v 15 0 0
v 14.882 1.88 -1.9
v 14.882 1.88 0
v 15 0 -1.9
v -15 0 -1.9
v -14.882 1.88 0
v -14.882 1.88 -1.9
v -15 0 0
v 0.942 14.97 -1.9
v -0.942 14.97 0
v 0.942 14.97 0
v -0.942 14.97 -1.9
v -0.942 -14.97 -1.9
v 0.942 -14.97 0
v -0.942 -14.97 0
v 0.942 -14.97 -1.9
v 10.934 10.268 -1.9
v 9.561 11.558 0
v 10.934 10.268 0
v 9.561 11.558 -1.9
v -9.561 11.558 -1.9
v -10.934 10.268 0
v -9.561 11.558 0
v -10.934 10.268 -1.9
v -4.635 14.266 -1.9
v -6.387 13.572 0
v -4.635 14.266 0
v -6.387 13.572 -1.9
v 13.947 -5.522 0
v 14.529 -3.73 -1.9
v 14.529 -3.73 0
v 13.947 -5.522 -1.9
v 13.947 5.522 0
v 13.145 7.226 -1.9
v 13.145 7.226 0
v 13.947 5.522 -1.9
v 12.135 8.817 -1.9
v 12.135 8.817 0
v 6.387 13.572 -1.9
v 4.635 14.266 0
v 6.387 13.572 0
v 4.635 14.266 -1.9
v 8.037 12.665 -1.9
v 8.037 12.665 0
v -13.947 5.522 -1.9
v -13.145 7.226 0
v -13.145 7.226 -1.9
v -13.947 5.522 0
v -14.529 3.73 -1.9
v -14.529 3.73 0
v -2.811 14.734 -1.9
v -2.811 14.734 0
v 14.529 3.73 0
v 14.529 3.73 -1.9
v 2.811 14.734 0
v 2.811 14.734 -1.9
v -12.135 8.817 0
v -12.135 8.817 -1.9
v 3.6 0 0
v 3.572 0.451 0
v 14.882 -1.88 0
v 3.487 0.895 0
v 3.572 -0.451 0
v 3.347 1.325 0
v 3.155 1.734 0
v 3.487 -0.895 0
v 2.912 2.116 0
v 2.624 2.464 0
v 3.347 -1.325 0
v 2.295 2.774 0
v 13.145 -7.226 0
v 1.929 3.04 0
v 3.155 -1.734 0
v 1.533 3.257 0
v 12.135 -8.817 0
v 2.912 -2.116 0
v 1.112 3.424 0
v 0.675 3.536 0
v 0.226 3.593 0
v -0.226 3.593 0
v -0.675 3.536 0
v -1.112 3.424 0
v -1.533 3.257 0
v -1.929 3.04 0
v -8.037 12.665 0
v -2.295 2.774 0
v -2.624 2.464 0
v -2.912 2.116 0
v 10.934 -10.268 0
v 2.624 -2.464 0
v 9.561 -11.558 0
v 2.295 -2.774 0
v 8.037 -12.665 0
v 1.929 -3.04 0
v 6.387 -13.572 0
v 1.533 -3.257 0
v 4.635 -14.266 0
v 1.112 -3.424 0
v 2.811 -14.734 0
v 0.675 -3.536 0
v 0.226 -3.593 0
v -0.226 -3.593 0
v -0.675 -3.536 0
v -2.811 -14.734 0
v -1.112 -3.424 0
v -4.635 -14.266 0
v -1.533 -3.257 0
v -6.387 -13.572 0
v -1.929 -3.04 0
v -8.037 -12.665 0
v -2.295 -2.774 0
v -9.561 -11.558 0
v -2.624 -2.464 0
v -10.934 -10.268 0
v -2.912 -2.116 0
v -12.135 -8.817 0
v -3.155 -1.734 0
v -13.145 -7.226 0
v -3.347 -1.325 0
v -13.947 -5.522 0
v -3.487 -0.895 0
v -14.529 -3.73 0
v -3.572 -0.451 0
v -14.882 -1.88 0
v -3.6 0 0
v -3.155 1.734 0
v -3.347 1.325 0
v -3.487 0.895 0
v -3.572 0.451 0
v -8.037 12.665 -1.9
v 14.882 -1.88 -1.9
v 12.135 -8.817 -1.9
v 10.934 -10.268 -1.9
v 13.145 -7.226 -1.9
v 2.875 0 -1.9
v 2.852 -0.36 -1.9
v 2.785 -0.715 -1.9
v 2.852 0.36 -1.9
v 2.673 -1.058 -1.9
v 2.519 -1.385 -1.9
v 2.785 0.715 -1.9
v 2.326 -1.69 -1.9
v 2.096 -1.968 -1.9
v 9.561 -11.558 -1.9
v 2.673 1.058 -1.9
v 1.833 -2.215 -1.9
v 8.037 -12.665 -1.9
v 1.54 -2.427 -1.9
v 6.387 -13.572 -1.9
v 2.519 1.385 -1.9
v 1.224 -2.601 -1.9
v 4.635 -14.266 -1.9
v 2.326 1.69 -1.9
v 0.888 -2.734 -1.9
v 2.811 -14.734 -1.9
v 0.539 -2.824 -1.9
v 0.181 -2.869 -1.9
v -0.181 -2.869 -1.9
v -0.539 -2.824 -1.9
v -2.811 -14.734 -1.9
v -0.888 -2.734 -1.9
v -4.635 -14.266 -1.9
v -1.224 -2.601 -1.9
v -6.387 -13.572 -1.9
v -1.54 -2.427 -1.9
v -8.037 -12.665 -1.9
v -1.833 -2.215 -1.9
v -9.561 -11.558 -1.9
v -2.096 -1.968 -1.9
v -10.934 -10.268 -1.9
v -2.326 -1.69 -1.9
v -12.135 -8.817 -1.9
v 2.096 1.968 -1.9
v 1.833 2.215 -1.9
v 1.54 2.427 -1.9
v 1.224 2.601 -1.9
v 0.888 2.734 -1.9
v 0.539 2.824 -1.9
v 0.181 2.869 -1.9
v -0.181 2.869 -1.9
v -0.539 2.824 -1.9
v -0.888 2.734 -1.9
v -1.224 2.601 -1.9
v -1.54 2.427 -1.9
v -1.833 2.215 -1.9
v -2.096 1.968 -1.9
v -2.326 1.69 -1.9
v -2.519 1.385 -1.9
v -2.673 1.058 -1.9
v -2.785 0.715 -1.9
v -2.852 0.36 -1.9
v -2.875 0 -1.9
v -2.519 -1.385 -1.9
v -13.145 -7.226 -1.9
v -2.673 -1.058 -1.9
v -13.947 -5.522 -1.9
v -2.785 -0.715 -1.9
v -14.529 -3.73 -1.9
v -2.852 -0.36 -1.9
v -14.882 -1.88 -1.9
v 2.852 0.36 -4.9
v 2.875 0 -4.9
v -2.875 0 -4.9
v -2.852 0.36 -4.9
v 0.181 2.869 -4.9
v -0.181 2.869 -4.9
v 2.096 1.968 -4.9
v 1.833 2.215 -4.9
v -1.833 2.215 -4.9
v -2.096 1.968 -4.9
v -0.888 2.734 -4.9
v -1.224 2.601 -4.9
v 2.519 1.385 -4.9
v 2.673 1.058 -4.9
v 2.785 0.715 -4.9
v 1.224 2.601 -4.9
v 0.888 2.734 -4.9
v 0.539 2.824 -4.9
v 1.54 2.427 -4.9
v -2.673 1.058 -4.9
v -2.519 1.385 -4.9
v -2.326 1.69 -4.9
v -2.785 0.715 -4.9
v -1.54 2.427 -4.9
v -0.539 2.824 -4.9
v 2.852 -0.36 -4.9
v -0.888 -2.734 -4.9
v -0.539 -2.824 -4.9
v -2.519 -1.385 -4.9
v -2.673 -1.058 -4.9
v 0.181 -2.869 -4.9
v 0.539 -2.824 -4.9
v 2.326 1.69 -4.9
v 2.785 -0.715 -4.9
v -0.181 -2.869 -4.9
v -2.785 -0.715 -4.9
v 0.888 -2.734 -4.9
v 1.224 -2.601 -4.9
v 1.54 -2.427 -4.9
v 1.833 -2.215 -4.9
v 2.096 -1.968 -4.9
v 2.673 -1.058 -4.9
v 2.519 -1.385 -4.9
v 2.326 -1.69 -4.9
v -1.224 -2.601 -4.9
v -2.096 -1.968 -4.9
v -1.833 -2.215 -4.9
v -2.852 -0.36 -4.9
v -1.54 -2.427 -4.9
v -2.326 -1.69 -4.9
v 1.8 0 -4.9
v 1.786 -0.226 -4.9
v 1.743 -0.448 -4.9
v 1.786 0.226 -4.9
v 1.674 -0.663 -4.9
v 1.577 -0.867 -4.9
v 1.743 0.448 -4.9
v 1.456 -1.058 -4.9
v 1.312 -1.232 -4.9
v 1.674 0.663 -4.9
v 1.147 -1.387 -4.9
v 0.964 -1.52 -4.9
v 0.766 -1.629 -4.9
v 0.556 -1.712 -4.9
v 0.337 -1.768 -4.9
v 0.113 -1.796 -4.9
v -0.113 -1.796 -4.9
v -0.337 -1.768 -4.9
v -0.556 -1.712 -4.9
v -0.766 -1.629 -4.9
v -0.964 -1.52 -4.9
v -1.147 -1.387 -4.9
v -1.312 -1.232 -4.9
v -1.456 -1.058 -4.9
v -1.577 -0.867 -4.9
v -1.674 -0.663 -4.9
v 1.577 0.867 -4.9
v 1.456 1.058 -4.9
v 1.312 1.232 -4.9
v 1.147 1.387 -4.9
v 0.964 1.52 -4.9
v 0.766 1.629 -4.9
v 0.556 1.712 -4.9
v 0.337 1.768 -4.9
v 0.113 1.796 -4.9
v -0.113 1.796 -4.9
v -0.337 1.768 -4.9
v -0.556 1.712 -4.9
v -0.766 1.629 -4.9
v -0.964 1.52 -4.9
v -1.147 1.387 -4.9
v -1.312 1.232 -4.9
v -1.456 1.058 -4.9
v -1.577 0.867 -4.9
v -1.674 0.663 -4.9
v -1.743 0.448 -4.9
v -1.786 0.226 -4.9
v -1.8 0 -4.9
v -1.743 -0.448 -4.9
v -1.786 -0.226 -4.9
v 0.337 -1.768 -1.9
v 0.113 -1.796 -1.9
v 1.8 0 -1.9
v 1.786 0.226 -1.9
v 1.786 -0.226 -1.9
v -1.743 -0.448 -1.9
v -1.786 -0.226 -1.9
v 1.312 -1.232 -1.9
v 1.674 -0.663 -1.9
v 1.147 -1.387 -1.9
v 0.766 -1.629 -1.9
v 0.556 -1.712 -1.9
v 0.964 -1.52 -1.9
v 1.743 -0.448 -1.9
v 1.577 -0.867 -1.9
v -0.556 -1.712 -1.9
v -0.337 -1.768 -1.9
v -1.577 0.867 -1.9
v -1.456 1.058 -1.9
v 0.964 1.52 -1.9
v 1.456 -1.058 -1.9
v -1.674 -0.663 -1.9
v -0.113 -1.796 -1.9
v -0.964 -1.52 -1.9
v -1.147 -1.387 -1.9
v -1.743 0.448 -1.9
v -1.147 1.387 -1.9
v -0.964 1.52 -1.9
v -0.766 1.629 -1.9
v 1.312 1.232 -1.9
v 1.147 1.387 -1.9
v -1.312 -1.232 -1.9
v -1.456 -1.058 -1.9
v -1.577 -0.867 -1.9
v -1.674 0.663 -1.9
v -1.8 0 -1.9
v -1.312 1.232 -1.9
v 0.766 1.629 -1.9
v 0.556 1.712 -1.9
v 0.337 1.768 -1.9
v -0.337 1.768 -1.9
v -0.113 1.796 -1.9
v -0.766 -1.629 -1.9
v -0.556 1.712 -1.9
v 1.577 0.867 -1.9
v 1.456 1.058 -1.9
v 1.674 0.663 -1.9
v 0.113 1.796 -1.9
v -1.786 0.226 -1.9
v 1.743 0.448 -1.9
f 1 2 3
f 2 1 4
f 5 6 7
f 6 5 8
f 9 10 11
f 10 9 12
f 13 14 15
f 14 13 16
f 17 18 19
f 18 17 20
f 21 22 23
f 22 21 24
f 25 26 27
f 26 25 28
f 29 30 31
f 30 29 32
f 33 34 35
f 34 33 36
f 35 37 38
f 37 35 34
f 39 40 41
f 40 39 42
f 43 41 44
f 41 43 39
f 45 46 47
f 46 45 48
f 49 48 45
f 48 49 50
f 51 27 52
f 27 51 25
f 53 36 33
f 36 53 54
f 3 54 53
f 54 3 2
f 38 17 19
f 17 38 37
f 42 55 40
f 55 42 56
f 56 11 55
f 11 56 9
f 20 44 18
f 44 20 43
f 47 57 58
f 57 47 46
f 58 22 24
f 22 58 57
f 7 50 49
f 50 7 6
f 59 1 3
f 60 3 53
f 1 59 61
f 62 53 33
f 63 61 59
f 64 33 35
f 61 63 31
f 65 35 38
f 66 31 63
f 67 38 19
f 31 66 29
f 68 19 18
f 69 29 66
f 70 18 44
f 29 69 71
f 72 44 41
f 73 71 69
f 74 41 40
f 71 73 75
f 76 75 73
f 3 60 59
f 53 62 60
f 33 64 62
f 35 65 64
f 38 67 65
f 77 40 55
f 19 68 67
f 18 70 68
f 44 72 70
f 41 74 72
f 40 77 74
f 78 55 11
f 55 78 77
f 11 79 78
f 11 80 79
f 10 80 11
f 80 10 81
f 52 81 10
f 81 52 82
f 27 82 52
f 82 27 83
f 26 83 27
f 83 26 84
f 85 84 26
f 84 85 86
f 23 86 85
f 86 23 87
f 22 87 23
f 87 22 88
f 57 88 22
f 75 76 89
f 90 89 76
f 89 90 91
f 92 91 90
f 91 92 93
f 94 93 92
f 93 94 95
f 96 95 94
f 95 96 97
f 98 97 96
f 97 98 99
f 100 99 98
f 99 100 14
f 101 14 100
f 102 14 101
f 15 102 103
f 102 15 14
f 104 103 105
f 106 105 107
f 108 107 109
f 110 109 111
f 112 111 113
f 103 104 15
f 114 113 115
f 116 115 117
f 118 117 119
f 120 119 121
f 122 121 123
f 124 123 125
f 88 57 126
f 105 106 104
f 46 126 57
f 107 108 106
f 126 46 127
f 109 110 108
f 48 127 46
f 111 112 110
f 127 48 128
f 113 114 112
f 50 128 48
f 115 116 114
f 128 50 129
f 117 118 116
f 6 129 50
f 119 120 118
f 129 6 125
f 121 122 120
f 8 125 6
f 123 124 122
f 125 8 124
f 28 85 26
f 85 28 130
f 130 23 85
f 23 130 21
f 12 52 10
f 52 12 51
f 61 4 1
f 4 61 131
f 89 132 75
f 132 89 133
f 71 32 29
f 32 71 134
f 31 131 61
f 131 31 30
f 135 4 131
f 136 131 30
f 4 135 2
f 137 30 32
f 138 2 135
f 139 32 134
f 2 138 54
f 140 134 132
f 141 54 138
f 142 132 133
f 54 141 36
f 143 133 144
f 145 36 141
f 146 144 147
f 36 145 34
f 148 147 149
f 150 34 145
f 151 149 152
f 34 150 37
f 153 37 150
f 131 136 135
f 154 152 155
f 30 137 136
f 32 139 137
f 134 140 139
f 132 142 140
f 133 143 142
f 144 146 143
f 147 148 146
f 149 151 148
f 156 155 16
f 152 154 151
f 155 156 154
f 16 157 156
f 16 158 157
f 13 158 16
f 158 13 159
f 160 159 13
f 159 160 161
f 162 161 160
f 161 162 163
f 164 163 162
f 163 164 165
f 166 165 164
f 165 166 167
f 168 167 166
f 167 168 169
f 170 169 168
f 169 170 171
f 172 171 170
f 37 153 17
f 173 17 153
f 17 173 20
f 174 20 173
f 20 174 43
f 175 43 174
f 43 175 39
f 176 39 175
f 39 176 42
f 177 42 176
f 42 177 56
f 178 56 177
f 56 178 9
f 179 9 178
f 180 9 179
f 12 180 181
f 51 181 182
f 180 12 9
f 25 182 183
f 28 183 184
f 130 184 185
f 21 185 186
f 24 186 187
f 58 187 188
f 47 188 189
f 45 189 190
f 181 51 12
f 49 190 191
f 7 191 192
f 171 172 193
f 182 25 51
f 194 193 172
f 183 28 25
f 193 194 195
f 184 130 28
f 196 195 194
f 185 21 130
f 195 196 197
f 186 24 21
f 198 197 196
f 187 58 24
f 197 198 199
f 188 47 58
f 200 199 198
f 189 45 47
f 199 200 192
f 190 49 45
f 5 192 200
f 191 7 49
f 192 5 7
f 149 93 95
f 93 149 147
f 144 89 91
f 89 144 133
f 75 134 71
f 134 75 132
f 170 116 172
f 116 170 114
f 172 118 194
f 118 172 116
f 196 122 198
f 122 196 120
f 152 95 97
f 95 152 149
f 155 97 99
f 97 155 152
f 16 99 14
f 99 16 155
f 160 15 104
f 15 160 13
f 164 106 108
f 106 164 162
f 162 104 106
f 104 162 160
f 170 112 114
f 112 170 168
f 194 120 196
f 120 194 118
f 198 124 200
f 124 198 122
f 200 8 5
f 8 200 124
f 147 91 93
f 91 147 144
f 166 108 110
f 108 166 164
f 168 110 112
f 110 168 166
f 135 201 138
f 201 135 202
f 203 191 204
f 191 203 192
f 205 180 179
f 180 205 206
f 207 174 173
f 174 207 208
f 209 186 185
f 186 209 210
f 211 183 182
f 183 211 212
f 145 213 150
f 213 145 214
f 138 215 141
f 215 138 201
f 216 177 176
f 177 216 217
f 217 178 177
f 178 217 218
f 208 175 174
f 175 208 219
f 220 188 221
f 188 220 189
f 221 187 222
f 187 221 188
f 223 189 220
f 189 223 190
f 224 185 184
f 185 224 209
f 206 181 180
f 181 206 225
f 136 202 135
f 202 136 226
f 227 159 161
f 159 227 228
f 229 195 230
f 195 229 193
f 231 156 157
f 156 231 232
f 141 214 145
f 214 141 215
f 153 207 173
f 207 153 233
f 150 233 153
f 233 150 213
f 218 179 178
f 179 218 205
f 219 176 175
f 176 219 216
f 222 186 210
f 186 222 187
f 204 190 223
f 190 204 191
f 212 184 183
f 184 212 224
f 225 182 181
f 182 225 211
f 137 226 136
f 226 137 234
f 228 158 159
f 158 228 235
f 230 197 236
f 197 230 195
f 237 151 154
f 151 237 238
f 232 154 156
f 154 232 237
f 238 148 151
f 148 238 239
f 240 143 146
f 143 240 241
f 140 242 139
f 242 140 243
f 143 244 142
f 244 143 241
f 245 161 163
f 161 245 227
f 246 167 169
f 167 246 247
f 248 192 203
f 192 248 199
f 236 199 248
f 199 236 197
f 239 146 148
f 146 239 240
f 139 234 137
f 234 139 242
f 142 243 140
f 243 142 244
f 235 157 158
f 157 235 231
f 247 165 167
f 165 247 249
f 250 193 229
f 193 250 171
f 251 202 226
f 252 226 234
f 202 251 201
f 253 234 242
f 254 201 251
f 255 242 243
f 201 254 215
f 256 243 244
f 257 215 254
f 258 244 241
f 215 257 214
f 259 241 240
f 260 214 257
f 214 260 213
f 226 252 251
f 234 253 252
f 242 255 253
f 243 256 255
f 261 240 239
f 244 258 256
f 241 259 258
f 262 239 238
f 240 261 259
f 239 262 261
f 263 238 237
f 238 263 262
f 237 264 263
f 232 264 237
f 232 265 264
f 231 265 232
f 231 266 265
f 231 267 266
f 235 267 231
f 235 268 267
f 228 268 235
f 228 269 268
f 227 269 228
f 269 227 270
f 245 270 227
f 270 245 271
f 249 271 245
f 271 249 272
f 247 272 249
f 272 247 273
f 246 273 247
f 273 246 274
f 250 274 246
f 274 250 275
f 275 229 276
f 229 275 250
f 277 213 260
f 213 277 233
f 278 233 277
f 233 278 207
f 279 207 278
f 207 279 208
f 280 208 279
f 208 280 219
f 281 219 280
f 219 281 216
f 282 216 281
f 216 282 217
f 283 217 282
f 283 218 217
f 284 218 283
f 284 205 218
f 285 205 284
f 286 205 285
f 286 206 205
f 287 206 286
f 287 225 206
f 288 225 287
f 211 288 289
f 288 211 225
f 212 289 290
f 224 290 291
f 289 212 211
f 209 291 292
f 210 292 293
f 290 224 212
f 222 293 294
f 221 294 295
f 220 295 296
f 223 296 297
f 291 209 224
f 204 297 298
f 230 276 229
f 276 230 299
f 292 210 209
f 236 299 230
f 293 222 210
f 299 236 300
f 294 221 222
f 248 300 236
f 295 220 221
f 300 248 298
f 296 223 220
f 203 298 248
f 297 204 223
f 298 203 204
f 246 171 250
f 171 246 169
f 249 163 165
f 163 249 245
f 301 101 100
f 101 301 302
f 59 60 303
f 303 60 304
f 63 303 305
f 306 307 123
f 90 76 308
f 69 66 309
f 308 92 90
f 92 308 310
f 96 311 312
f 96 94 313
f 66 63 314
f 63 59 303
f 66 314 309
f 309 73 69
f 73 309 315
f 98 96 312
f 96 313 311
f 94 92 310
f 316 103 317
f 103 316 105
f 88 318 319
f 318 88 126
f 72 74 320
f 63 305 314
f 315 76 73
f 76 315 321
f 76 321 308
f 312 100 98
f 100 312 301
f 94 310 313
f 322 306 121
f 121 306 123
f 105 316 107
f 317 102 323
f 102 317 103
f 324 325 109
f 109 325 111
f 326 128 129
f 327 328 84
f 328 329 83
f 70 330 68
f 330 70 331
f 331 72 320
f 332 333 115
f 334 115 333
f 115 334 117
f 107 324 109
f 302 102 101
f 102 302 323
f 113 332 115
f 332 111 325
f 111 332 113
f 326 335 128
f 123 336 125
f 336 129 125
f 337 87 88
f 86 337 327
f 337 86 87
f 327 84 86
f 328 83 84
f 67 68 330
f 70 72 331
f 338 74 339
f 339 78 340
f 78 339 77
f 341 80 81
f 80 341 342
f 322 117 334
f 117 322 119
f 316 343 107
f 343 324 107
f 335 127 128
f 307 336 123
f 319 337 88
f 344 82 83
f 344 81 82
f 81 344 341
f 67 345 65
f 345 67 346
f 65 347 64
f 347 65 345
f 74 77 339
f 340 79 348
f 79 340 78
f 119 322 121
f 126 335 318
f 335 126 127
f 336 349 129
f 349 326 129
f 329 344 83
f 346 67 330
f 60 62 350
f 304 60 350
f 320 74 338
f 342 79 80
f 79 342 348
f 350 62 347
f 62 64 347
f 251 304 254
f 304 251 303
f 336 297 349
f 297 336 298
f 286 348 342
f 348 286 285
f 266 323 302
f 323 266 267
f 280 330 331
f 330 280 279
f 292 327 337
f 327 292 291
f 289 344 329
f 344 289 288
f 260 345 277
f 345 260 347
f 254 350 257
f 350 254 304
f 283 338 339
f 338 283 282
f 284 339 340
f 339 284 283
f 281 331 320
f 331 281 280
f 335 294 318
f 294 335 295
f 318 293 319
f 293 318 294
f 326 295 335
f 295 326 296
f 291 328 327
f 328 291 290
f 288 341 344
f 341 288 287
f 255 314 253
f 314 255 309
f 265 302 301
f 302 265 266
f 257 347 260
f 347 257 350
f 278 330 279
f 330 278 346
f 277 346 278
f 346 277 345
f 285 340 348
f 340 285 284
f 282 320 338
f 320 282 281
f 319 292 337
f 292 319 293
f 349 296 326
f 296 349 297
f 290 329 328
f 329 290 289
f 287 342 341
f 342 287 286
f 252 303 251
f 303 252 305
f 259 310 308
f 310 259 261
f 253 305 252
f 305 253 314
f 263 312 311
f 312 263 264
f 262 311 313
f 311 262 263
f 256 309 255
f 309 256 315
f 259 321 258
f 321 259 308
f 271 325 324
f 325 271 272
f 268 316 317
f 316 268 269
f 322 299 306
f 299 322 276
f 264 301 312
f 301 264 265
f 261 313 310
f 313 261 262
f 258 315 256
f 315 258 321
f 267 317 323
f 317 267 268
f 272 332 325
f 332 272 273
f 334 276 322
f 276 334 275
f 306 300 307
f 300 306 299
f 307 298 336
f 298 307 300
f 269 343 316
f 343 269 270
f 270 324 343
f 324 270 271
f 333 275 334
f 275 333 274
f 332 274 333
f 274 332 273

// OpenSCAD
$fn = 50;


difference() {
	union() {
		translate(v = [0, 0, -1.9000000000]) {
			cylinder(h = 1.9000000000, r = 15.0000000000);
		}
		translate(v = [0, 0, -4.9000000000]) {
			cylinder(h = 4.9000000000, r = 2.8750000000);
		}
	}
	union() {
		translate(v = [0, 0, 0]) {
			rotate(a = [0, 0, 0]) {
				difference() {
					union() {
						translate(v = [0, 0, -4.9000000000]) {
							cylinder(h = 4.9000000000, r = 1.5000000000);
						}
						translate(v = [0, 0, -1.9000000000]) {
							cylinder(h = 1.9000000000, r1 = 1.8000000000, r2 = 3.6000000000);
						}
						translate(v = [0, 0, -4.9000000000]) {
							cylinder(h = 4.9000000000, r = 1.8000000000);
						}
						translate(v = [0, 0, -4.9000000000]) {
							cylinder(h = 4.9000000000, r = 1.5000000000);
						}
					}
					union();
				}
			}
		}
	}
}
